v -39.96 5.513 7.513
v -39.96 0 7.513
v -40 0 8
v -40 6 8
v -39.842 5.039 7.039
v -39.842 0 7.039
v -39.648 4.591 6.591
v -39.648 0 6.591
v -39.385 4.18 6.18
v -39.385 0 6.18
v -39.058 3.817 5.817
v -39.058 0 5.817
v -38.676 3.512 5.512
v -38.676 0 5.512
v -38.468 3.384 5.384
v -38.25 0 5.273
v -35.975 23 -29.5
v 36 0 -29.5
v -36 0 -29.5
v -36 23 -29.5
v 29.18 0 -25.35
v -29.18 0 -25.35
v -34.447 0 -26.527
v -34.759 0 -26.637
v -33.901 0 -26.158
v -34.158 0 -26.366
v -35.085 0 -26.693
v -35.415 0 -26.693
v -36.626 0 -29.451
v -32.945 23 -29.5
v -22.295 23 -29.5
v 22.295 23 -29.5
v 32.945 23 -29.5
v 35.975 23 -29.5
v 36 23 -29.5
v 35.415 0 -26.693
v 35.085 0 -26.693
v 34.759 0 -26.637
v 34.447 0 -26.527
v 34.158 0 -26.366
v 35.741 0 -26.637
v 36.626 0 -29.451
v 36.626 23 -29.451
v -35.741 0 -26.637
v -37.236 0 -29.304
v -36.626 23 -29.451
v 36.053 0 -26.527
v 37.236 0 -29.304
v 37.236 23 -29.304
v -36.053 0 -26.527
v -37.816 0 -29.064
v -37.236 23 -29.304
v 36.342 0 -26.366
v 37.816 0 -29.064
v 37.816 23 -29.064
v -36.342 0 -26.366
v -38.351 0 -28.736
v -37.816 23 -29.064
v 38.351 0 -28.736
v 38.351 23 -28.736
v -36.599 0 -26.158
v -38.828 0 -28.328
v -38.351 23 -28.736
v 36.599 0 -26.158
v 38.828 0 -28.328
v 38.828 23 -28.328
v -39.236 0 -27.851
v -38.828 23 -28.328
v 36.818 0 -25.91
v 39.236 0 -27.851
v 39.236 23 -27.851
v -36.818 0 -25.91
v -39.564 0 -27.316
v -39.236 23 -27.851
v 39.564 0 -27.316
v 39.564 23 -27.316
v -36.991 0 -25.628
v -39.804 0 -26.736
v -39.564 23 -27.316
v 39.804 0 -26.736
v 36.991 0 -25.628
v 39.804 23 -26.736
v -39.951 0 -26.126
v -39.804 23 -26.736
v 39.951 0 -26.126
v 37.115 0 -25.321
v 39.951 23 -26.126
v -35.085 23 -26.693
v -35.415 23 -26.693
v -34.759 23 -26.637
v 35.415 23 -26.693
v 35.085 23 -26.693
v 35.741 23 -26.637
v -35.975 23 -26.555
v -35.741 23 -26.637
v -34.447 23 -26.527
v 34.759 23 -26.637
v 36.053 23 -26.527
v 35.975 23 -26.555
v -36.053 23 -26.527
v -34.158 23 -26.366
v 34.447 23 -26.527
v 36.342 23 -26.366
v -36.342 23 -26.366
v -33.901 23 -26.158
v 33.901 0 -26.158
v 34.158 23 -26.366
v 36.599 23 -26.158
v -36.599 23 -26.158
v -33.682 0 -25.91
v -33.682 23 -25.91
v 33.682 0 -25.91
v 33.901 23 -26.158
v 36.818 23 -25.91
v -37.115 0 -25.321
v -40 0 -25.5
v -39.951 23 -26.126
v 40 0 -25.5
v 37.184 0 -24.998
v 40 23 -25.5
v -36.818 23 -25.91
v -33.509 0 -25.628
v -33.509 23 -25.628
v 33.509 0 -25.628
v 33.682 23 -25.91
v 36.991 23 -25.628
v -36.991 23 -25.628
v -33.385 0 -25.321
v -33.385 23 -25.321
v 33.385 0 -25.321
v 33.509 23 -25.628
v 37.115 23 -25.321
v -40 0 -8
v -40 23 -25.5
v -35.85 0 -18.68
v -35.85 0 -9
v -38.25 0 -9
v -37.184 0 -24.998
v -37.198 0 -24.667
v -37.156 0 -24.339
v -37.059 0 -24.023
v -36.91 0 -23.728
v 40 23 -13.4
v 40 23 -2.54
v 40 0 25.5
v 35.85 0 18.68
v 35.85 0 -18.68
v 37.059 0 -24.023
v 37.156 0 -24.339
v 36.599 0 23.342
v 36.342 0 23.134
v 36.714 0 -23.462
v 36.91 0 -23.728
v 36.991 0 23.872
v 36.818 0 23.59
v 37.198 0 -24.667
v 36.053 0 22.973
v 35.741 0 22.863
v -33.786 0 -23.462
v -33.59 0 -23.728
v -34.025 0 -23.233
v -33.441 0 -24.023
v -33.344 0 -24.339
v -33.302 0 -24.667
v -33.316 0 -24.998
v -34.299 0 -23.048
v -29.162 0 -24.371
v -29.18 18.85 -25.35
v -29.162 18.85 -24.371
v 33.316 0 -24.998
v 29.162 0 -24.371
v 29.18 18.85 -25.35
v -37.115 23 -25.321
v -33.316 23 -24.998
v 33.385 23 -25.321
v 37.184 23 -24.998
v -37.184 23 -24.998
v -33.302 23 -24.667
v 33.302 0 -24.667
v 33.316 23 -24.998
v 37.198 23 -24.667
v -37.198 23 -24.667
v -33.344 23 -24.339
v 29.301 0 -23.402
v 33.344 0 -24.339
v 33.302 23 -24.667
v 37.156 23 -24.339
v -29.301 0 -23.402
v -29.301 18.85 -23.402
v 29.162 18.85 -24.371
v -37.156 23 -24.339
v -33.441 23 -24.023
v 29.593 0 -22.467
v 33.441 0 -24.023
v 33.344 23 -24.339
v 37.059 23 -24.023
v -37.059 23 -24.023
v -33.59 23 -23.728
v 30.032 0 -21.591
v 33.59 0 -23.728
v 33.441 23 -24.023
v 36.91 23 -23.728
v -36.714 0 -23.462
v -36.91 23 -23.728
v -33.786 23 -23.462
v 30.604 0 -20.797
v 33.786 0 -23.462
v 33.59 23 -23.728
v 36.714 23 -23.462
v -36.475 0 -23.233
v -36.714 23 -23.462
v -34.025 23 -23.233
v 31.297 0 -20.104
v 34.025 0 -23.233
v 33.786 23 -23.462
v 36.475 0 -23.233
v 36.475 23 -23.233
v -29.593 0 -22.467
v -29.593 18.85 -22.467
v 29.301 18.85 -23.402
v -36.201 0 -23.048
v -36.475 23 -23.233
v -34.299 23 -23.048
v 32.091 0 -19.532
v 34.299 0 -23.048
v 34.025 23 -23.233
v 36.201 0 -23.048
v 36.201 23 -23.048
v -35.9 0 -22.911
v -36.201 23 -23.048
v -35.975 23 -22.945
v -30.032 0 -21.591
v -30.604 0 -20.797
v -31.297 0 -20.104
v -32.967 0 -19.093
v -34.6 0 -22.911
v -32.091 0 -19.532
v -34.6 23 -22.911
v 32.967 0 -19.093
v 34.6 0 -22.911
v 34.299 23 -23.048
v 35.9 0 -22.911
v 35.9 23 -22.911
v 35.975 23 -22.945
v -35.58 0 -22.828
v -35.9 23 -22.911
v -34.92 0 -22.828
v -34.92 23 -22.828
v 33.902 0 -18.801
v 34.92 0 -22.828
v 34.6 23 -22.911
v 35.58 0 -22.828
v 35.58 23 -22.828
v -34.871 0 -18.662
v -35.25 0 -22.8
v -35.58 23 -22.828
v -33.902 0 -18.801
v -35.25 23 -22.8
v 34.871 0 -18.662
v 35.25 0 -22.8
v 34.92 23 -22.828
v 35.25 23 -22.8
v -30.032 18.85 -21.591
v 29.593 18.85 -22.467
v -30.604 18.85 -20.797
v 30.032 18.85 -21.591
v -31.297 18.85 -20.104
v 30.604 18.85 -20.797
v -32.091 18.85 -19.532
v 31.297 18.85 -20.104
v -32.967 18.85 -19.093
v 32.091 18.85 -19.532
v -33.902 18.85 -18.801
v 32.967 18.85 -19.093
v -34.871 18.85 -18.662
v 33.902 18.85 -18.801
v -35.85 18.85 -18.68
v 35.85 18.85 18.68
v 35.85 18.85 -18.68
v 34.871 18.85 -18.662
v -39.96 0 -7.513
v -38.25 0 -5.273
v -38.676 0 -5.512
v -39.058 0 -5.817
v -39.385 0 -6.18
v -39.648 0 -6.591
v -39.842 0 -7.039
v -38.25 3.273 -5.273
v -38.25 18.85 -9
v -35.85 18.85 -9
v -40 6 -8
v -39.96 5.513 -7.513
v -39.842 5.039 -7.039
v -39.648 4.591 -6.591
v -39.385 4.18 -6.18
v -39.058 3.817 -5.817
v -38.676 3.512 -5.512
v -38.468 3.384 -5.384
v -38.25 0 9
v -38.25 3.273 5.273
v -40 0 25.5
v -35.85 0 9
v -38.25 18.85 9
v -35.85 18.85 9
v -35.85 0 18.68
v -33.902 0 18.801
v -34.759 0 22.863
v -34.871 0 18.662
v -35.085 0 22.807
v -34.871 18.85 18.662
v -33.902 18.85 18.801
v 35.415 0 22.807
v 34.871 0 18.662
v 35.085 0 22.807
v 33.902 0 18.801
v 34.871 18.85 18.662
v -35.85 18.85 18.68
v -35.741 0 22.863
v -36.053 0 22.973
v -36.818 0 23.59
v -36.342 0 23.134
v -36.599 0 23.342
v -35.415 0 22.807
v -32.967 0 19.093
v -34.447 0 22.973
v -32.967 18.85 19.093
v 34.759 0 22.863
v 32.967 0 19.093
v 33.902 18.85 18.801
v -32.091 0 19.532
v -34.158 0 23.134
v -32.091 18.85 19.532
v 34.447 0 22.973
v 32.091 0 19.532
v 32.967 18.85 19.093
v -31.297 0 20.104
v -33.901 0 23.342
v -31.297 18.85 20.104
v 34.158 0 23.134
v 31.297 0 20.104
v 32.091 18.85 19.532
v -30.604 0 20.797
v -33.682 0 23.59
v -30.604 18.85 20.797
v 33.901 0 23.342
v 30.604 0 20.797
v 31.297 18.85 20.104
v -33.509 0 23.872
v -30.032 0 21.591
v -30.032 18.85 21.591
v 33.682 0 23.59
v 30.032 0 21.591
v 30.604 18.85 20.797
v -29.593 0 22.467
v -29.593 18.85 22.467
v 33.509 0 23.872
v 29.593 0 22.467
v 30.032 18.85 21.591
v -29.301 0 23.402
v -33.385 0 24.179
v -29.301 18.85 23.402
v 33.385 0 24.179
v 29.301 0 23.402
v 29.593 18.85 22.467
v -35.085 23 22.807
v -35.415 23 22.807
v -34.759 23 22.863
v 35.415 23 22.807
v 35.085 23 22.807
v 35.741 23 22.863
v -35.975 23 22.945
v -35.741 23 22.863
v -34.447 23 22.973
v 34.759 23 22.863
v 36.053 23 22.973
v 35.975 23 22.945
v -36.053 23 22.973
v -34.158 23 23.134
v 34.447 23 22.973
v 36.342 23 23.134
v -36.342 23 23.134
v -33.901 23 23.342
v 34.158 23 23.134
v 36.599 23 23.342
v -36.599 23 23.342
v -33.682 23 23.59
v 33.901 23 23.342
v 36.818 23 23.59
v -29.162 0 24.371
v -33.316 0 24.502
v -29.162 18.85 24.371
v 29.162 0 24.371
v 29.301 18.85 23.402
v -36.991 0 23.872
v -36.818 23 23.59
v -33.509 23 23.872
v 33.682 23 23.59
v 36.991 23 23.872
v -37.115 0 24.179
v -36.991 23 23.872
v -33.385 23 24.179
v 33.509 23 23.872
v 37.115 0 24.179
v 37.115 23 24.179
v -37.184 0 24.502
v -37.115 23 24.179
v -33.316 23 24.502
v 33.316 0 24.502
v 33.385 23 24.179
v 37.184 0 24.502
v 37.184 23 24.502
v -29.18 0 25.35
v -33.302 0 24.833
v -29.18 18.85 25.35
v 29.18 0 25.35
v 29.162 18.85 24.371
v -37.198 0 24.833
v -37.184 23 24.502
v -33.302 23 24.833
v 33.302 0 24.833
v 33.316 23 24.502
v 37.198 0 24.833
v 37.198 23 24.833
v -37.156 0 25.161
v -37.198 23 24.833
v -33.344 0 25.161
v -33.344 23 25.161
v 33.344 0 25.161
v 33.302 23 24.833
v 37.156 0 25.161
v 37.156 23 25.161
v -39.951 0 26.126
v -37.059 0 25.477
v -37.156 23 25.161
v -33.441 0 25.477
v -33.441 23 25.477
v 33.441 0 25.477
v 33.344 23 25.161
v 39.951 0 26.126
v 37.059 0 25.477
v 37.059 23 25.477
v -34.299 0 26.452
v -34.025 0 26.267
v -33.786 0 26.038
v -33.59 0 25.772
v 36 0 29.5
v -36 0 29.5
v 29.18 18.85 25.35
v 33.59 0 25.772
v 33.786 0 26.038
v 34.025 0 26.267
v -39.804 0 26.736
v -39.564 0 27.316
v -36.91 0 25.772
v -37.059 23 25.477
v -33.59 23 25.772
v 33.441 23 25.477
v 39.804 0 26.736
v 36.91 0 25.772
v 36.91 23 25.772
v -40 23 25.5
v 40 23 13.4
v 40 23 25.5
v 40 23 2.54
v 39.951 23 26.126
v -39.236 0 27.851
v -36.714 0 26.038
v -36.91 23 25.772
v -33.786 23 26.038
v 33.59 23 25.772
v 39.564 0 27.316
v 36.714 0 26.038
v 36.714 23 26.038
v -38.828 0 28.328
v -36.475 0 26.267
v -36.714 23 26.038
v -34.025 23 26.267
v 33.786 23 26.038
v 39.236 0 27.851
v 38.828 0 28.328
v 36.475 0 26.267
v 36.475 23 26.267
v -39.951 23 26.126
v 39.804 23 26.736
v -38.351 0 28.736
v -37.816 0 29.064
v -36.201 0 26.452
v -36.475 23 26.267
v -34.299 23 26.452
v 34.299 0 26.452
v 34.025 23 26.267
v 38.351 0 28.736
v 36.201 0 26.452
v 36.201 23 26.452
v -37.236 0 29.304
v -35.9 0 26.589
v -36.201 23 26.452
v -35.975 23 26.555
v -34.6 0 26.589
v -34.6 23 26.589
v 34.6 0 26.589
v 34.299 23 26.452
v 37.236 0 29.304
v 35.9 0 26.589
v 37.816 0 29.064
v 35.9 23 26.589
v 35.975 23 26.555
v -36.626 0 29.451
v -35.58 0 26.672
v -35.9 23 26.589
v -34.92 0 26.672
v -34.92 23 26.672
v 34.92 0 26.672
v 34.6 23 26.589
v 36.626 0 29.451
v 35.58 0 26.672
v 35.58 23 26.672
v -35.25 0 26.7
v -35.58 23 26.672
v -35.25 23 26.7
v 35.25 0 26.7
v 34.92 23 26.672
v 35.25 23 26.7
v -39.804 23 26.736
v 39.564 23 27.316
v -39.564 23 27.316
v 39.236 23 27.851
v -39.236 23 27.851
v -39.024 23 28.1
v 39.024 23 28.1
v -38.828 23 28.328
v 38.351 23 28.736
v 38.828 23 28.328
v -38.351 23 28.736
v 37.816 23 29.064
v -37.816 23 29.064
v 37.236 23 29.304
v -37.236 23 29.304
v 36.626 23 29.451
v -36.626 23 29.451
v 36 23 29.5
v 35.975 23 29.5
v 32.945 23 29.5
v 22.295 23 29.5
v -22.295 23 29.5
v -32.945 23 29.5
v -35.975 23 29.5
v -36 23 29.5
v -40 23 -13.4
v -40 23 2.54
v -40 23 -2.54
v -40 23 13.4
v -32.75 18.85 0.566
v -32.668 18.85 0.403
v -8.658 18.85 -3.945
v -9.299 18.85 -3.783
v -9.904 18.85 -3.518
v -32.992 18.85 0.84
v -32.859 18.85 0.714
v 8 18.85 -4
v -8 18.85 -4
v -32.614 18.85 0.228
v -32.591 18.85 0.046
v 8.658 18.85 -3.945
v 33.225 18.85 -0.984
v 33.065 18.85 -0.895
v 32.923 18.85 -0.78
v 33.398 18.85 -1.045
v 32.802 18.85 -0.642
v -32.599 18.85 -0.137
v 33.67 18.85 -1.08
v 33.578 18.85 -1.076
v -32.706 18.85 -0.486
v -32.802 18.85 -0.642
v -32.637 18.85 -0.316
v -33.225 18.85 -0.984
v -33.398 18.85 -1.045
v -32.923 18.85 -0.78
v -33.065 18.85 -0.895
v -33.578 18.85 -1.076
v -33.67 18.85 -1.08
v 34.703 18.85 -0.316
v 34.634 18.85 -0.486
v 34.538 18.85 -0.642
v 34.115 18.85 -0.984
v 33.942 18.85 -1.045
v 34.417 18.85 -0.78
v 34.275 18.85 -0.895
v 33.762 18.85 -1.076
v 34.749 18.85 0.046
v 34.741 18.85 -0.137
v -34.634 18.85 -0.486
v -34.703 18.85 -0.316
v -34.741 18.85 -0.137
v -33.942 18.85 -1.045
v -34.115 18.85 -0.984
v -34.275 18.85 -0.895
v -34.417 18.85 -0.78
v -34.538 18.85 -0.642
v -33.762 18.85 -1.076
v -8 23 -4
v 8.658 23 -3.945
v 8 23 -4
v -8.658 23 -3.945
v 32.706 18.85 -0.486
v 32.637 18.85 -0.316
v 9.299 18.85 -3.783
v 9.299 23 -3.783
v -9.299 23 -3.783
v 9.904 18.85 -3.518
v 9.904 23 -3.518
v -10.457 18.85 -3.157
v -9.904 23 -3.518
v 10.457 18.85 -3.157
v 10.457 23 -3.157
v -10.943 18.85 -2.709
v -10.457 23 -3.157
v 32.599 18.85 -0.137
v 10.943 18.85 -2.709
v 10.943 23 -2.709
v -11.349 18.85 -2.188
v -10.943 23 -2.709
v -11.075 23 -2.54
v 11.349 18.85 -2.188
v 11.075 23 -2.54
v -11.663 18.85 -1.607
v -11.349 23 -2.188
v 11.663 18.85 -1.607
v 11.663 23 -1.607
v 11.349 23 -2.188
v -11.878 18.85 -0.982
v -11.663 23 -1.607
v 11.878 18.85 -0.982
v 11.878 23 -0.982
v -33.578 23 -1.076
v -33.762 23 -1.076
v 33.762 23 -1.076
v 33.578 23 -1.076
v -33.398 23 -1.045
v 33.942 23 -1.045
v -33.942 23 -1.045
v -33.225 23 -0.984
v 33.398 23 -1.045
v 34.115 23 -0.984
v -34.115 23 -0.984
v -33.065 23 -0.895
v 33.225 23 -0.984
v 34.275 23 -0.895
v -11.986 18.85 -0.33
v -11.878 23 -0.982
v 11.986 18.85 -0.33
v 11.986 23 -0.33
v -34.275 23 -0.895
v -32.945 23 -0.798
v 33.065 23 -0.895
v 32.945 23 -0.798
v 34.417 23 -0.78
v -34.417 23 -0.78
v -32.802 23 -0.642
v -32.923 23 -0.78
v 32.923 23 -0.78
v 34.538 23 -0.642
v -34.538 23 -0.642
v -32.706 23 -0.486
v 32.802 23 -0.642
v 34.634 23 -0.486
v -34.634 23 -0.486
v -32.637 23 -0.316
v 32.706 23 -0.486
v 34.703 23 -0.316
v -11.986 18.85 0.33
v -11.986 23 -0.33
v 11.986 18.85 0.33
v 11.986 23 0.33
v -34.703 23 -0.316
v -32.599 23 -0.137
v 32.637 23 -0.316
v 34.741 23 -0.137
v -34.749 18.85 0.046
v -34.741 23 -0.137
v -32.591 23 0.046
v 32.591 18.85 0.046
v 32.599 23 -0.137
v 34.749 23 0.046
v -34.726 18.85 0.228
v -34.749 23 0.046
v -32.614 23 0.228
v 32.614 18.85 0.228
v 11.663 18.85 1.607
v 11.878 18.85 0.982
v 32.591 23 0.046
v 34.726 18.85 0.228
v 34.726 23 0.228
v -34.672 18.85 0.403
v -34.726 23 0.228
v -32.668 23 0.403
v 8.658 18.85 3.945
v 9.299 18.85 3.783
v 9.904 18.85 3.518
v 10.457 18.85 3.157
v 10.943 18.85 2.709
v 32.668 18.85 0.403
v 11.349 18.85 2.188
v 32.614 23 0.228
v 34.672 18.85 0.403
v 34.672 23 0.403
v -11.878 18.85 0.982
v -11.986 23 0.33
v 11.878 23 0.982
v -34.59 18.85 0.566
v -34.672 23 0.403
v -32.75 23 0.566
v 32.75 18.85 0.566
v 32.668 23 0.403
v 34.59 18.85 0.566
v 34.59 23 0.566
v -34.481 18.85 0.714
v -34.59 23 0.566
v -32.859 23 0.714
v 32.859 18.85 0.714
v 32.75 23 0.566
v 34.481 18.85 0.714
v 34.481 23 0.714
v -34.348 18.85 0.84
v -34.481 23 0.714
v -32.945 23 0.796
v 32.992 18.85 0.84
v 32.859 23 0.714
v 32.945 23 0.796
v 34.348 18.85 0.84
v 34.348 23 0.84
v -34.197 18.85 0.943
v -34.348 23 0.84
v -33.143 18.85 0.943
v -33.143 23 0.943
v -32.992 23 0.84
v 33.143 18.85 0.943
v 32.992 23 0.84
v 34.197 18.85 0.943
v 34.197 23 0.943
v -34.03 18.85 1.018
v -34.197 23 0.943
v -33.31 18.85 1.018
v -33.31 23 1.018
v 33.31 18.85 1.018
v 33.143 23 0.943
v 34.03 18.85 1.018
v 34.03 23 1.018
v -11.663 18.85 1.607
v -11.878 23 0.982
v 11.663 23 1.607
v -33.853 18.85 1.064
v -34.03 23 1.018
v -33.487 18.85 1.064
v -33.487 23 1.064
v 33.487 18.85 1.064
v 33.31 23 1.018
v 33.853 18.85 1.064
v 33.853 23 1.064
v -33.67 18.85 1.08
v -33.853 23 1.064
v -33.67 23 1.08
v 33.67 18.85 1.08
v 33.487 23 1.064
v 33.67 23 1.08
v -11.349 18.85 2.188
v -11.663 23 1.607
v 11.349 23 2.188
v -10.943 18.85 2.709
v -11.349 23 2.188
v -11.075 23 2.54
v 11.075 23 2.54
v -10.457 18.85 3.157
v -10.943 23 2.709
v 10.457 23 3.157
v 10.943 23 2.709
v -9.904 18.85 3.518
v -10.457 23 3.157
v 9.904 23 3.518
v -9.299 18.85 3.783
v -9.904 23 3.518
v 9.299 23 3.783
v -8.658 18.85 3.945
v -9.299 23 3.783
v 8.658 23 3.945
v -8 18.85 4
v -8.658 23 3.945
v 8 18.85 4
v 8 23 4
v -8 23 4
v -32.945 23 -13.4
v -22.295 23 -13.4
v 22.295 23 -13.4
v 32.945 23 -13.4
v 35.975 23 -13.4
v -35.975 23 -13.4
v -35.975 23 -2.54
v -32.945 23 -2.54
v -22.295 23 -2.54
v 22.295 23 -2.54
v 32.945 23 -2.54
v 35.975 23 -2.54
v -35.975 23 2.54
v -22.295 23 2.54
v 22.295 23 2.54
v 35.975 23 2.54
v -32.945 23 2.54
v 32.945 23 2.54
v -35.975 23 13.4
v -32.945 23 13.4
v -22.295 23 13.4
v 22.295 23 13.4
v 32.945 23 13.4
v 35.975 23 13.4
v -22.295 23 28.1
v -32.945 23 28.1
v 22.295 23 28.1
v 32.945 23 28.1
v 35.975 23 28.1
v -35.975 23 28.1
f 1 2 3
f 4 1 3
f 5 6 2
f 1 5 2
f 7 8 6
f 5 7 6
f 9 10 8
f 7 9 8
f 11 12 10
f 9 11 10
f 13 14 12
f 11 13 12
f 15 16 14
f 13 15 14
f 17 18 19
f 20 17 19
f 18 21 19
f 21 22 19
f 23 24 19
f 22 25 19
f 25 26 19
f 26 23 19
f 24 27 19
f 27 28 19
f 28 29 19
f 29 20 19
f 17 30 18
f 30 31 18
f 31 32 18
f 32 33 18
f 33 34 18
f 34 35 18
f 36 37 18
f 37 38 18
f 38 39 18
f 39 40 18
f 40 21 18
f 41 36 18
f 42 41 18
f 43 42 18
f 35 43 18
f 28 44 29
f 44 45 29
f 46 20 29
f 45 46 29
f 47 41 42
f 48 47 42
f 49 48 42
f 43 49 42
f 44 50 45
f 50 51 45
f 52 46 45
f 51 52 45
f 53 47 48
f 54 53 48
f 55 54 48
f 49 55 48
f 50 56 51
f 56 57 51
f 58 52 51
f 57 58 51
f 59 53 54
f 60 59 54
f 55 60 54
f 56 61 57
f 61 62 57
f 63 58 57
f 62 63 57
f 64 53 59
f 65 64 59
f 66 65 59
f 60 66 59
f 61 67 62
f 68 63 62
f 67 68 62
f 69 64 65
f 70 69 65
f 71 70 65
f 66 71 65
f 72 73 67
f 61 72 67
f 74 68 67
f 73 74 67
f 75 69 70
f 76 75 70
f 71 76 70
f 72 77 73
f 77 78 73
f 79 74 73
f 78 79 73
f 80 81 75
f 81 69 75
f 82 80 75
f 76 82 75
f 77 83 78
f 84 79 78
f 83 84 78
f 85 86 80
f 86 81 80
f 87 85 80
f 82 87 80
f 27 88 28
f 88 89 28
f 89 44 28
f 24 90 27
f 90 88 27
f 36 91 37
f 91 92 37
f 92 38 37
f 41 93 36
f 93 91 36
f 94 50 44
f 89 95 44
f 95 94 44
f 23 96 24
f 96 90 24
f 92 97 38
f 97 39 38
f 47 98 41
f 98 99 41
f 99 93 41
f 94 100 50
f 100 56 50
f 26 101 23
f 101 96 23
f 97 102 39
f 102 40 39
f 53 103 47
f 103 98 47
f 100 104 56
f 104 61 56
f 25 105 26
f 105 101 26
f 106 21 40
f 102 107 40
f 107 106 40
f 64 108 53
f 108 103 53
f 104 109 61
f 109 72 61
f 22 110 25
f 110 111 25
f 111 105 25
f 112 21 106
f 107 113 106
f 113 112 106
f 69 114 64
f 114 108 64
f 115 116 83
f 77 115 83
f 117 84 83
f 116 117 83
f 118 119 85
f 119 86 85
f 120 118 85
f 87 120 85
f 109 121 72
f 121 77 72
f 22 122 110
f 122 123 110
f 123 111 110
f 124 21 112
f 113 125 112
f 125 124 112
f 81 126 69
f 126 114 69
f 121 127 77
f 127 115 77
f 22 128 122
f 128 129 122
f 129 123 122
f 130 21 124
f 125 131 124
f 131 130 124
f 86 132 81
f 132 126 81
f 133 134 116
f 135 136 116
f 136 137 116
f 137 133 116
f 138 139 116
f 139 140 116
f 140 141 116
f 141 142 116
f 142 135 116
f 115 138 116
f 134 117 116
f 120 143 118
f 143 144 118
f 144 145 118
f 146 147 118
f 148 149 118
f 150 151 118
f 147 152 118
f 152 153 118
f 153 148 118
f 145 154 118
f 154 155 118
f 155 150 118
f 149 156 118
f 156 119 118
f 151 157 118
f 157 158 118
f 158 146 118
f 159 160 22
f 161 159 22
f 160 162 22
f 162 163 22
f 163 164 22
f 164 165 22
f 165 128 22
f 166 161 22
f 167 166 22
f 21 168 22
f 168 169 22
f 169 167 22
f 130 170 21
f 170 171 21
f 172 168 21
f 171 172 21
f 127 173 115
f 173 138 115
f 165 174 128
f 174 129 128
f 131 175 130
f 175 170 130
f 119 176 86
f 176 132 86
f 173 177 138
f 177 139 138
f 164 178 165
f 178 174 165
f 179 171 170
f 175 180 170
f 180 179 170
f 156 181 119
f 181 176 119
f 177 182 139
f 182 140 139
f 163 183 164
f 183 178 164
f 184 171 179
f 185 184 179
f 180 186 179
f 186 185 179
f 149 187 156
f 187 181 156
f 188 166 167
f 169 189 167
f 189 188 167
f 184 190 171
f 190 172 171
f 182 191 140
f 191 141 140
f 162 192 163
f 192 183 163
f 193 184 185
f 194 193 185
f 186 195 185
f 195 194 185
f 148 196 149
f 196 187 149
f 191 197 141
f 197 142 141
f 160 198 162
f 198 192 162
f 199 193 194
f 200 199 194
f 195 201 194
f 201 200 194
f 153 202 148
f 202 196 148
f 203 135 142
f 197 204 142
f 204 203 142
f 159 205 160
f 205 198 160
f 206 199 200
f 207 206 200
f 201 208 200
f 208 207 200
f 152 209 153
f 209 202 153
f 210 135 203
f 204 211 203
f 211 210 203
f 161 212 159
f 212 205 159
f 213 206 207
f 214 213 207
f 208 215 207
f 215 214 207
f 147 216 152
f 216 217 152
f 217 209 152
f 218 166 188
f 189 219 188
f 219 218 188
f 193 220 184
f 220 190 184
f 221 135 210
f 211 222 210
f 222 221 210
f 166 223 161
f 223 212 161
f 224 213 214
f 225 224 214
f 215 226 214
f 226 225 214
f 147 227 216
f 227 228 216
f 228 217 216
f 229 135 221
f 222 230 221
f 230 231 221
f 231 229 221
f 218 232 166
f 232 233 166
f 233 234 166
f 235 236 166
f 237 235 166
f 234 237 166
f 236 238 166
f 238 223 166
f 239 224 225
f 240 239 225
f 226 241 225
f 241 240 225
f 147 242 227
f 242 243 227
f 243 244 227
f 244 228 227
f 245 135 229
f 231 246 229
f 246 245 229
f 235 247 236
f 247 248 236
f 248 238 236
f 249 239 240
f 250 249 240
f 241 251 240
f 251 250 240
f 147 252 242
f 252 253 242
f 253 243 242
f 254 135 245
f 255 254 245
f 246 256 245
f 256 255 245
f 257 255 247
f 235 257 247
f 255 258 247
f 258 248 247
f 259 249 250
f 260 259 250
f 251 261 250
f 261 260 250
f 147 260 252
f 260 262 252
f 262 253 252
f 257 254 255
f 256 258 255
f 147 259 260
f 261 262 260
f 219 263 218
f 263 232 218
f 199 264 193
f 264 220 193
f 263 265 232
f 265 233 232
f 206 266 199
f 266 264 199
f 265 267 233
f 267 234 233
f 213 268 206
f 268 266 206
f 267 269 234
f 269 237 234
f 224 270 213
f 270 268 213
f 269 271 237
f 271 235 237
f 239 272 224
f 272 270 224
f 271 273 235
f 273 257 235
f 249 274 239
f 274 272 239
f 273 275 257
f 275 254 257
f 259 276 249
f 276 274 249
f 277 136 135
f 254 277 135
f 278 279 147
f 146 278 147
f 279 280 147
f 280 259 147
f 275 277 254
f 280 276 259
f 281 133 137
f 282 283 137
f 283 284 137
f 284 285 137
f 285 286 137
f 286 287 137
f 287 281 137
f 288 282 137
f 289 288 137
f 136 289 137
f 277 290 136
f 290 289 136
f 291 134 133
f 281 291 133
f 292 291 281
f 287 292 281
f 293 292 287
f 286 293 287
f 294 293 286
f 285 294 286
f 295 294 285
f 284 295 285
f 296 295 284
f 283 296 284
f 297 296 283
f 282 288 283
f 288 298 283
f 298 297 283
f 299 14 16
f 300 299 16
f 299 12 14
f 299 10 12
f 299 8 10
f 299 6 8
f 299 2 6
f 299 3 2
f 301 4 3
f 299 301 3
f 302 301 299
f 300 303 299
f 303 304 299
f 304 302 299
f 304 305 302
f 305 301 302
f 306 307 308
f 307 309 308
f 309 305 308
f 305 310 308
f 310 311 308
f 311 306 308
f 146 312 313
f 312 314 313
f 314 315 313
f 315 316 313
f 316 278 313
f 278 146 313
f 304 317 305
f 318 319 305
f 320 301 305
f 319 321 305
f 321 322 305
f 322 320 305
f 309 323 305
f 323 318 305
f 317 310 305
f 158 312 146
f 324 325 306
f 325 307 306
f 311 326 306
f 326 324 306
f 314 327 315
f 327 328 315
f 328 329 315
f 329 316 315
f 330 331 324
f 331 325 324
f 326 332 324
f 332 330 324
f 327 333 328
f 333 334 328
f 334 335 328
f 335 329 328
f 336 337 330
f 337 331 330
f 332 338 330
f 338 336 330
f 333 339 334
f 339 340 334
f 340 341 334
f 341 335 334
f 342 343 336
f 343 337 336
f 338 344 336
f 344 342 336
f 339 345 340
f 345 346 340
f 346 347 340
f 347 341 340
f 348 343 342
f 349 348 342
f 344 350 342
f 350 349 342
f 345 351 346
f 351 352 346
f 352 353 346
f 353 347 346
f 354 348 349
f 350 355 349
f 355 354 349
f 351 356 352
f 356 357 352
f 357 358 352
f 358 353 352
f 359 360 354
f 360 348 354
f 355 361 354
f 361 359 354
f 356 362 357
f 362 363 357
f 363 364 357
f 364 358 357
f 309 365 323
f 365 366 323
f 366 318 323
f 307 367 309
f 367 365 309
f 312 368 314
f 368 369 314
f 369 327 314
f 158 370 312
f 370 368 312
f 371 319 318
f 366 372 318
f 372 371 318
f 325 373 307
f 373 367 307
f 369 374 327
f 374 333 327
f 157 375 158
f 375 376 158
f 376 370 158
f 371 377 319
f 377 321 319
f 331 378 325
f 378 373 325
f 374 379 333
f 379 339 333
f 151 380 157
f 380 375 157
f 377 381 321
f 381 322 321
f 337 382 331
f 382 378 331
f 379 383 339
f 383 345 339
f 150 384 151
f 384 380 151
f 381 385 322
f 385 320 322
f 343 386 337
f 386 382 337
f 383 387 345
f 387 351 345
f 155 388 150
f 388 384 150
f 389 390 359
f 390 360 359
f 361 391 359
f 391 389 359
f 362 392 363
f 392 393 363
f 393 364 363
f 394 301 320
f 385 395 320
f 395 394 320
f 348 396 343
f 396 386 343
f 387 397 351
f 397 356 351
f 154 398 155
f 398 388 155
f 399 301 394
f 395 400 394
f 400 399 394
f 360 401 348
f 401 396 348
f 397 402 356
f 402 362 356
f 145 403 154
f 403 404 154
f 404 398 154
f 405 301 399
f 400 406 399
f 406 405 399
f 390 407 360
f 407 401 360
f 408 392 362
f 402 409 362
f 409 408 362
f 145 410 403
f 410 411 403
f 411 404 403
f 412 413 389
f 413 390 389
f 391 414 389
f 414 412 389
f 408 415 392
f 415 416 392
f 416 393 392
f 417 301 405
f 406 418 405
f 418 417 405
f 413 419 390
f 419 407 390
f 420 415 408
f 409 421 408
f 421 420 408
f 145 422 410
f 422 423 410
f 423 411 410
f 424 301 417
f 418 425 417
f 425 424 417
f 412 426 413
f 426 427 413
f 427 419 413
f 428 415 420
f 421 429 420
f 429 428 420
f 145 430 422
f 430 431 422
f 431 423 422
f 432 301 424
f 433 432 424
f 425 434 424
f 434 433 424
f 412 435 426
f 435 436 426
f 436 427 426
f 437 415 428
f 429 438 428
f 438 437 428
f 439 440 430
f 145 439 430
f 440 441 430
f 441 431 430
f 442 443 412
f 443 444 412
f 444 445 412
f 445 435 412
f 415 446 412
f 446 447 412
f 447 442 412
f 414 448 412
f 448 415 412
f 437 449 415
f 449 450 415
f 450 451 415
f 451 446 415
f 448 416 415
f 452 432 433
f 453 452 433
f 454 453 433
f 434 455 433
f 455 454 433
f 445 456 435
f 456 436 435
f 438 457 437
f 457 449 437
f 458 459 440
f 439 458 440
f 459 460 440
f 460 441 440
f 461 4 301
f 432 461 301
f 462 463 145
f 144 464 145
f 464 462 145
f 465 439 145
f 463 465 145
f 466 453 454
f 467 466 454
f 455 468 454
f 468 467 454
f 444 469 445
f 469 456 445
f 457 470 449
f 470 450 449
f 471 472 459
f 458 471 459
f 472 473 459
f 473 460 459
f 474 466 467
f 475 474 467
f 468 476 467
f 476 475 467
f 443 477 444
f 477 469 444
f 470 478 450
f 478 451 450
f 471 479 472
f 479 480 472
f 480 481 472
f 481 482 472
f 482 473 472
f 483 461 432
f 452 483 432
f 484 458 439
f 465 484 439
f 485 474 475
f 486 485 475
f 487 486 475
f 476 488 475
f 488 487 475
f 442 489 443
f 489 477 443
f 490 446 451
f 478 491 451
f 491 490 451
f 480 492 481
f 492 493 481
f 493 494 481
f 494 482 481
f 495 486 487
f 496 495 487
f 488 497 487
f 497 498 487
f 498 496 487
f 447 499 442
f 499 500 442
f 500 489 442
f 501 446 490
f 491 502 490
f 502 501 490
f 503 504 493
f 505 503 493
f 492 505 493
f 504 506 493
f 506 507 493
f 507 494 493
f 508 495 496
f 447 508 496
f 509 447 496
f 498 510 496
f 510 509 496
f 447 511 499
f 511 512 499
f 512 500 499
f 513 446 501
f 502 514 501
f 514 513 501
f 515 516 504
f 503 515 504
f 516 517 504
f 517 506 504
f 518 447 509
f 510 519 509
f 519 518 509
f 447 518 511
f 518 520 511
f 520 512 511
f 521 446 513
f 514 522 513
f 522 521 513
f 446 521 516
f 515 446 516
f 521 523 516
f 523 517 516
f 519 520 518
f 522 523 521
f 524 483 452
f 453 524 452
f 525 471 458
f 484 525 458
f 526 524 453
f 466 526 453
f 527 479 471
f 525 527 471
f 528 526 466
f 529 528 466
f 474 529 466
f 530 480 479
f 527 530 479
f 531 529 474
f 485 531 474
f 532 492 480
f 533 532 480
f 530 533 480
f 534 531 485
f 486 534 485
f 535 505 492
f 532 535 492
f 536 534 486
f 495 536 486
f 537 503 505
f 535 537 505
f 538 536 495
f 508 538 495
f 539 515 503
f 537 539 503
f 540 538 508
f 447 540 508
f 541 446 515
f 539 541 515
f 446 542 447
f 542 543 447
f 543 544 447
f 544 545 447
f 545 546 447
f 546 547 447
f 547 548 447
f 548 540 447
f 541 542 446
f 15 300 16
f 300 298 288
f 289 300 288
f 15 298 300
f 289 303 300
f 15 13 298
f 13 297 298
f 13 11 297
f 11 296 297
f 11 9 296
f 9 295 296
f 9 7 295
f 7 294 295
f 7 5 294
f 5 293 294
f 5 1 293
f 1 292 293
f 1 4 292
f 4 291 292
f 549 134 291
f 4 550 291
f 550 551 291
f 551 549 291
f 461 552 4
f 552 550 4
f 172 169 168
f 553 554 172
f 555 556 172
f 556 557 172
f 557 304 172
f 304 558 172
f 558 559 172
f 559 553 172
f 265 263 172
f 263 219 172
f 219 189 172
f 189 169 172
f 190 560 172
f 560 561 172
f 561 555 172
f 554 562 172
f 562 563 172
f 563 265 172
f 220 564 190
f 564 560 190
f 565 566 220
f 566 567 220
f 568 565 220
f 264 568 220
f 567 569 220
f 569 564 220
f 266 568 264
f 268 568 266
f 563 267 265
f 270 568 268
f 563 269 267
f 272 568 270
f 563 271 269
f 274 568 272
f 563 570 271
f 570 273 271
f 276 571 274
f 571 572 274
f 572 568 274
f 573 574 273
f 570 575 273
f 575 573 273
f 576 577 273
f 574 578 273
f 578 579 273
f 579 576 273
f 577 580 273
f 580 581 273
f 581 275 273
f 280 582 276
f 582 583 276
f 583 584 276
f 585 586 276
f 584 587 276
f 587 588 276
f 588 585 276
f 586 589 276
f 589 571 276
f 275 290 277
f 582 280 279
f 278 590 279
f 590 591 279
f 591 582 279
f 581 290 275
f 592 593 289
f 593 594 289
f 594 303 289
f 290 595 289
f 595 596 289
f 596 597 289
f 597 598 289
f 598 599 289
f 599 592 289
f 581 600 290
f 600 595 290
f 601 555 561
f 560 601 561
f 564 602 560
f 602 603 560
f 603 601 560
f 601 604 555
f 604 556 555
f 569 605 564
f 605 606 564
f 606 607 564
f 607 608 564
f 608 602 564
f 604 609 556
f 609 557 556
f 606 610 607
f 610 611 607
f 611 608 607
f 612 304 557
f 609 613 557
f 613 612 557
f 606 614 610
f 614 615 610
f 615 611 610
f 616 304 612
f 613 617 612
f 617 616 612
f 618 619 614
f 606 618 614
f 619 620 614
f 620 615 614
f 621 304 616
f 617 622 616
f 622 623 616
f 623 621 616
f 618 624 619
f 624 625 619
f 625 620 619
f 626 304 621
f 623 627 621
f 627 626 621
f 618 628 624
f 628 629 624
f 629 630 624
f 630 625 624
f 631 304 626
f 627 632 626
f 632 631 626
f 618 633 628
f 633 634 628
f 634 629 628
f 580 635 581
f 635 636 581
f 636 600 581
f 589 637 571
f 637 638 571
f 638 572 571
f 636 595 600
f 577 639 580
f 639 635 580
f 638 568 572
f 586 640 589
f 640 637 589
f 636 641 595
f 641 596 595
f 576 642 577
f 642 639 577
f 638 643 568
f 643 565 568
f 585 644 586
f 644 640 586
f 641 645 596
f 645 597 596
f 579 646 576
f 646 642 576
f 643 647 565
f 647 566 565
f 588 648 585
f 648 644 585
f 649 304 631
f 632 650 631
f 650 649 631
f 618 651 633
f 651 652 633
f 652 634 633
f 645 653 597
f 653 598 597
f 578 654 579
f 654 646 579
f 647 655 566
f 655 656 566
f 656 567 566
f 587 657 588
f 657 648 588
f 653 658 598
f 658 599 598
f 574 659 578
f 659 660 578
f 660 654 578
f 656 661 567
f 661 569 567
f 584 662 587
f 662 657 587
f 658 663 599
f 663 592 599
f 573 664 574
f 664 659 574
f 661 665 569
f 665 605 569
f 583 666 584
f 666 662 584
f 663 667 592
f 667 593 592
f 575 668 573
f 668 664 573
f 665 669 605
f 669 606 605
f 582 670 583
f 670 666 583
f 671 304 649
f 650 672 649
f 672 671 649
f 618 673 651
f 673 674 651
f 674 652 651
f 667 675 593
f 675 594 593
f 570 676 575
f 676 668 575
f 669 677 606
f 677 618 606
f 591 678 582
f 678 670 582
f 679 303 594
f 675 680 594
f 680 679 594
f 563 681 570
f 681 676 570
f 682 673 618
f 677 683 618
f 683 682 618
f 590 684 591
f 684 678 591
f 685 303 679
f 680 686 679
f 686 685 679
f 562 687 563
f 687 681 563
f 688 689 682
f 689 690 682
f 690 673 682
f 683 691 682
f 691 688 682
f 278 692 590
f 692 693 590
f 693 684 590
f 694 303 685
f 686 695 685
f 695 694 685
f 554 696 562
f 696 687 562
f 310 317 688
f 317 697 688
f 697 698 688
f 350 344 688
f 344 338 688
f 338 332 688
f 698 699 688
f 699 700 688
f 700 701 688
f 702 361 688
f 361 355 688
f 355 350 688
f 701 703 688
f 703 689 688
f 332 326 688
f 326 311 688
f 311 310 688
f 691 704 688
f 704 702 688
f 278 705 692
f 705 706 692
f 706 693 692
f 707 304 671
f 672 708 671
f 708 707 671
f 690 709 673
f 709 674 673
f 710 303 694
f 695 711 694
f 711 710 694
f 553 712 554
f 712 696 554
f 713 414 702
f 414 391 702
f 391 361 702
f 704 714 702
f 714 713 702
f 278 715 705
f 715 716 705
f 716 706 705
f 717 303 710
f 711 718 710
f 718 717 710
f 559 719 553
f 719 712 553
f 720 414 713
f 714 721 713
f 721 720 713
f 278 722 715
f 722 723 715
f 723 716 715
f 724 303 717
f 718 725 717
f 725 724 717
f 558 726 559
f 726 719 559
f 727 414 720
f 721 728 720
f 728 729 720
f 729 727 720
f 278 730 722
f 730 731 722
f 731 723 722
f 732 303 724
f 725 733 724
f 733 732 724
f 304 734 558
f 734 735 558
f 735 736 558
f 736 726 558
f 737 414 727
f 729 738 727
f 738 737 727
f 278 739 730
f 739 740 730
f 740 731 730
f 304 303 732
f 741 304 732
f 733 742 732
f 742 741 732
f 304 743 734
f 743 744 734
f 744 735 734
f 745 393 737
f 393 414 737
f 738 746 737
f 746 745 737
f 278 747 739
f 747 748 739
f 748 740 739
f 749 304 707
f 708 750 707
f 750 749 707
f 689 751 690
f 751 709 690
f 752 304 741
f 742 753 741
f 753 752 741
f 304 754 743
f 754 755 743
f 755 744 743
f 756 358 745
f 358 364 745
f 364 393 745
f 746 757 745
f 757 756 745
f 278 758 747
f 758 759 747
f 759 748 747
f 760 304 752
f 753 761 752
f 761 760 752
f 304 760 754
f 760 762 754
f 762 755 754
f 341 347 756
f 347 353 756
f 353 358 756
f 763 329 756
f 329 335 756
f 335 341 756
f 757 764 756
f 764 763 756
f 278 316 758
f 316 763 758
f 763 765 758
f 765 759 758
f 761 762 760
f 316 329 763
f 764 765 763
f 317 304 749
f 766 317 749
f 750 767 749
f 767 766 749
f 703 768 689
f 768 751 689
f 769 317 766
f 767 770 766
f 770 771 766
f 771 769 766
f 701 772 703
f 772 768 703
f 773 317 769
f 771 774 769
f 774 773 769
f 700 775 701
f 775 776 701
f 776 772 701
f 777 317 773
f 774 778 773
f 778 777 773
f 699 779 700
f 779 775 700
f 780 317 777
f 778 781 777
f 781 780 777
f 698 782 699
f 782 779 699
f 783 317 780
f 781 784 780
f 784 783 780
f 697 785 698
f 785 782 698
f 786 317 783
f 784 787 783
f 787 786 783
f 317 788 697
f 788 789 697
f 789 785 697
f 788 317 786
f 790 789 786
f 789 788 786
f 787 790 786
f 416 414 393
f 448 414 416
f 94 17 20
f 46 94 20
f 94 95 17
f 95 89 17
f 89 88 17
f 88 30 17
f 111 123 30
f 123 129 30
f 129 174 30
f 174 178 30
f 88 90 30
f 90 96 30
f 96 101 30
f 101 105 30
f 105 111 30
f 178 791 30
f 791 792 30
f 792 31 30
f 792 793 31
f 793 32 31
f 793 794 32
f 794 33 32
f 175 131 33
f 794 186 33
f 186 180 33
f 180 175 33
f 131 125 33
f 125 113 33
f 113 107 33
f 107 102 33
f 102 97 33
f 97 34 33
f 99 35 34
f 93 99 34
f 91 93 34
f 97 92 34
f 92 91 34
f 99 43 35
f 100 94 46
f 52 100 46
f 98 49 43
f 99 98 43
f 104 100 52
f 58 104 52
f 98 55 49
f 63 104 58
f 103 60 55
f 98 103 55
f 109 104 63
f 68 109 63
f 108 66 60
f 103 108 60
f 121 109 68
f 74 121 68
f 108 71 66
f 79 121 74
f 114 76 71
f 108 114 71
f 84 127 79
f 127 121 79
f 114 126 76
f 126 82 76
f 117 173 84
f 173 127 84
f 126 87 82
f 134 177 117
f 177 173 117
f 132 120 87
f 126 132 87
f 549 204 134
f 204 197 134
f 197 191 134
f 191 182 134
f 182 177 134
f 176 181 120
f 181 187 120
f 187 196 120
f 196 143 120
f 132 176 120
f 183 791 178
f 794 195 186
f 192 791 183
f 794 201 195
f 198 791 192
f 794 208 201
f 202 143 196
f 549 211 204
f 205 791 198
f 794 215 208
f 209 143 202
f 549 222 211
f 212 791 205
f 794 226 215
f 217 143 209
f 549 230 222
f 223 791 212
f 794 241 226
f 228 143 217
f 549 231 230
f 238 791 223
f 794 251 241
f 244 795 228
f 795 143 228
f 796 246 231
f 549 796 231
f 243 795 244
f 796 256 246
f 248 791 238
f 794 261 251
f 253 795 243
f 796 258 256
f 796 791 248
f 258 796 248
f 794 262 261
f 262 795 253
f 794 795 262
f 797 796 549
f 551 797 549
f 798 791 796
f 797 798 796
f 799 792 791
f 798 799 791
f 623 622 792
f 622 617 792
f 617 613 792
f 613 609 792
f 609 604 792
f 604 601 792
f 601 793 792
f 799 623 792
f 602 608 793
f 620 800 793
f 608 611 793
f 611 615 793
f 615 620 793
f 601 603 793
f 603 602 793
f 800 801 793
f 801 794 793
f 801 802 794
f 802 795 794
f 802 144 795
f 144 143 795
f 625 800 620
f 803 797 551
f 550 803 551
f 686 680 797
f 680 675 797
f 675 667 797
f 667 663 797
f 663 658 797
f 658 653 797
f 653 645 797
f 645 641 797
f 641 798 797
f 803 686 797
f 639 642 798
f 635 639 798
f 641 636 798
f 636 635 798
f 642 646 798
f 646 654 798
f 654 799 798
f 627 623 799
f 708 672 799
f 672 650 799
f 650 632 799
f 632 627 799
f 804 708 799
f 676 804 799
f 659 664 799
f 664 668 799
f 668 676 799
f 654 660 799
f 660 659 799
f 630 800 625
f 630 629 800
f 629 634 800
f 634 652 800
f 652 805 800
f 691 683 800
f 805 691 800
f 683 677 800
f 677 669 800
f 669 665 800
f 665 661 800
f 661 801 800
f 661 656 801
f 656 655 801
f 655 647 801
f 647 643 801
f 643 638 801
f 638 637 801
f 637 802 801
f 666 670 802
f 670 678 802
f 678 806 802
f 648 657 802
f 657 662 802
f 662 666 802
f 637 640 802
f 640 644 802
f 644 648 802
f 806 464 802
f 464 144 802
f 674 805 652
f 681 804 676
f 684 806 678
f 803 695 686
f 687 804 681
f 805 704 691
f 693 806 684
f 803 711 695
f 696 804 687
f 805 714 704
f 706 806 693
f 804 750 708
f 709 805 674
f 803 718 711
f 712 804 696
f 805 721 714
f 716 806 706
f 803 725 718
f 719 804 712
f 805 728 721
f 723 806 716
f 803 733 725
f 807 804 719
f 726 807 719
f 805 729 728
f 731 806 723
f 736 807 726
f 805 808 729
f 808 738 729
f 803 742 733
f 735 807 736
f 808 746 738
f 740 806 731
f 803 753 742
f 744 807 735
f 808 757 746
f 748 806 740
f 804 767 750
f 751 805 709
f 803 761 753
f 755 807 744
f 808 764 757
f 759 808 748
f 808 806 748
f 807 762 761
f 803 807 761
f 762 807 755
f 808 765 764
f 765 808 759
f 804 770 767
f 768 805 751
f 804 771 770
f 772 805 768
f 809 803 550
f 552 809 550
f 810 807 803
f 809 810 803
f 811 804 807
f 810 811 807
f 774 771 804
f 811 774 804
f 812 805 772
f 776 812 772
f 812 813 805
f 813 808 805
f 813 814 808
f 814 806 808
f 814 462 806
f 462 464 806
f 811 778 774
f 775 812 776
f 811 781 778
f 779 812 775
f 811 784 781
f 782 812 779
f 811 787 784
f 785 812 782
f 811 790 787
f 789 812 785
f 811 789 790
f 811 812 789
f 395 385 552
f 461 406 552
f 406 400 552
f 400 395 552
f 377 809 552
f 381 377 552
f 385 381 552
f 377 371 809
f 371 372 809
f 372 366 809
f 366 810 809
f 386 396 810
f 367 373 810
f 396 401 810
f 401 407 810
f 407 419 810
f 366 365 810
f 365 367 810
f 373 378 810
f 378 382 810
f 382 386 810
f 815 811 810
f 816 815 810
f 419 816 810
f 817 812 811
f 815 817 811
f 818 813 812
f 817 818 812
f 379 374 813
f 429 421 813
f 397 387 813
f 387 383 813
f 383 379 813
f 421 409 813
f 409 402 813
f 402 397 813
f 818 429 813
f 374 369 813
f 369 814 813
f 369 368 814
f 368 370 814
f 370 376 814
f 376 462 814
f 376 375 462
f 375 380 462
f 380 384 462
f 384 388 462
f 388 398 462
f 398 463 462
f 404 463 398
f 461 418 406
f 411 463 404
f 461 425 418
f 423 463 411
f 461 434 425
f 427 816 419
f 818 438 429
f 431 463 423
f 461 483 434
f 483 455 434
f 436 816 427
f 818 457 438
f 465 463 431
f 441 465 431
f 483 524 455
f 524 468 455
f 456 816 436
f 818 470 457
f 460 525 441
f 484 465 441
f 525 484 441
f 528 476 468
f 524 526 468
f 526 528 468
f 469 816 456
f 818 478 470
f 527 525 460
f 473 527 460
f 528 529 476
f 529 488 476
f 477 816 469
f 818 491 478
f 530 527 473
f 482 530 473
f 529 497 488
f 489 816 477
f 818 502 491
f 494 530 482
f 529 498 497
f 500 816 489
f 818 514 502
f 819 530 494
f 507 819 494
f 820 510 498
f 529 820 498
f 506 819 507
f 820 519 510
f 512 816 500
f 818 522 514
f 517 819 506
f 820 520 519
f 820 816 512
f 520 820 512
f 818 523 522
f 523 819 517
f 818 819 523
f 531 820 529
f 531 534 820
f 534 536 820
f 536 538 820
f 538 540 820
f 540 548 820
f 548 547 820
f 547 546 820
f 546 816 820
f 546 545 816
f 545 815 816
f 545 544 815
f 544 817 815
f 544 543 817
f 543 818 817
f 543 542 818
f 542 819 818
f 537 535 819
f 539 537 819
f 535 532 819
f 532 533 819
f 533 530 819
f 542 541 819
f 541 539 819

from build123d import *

# Parameters (mm, degrees)
SKETCH1_W           = 80
SKETCH1_H           = 59
BOSS_EXTRUDE1_DEPTH = 23
SKETCH2_R           = 1.95
CUT_EXTRUDE1_DEPTH  = 23
SHELL2_T            = -4.15
CUT_EXTRUDE2_DEPTH  = 23
SKETCH4_W           = 10
SKETCH4_H           = 3
CUT_EXTRUDE3_DEPTH  = 23
FILLET1_R           = 4
FILLET2_R           = 3
SKETCH5_R           = 1.08
CUT_EXTRUDE4_DEPTH  = 10
SKETCH6_W           = 2.4
SKETCH6_H           = 18
CUT_EXTRUDE5_DEPTH  = 18.85


with BuildPart() as part:
    # Sketch1 → Boss-Extrude1 (new body)
    with BuildSketch(Plane(origin=(0, 0, 0), x_dir=(1, 0, 0), z_dir=(0, 1, 0))):
        Rectangle(SKETCH1_W, SKETCH1_H)
    extrude(amount=BOSS_EXTRUDE1_DEPTH)

    # Sketch2 → Cut-Extrude1 (cut)
    with BuildSketch(Plane(origin=(0, 23, 0), x_dir=(1, 0, 0), z_dir=(0, 1, 0))):
        with Locations(Location((35.25, 24.75, 0), (0, 0, 270))):
            Circle(SKETCH2_R)
        with Locations(Location((35.25, -24.75, 0), (0, 0, 270))):
            Circle(SKETCH2_R)
        with Locations(Location((-35.25, 24.75, 0), (0, 0, 270))):
            Circle(SKETCH2_R)
        with Locations(Location((-35.25, -24.75, 0), (0, 0, 270))):
            Circle(SKETCH2_R)
    extrude(amount=-CUT_EXTRUDE1_DEPTH, mode=Mode.SUBTRACT)

    # Shell2
    shell2_openings = [part.faces().sort_by_distance(p)[0] for p in [
        (0, 0, 0),
    ]]
    offset(amount=SHELL2_T, openings=shell2_openings)

    # Sketch3 → Cut-Extrude2 (cut)
    with BuildSketch(Plane(origin=(0, 23, 0), x_dir=(1, 0, 0), z_dir=(0, 1, 0))):
        with BuildLine():
            Line((8, -4), (-8, -4))
            ThreePointArc((-8, -4), (-12, 0), (-8, 4))
            Line((-8, 4), (8, 4))
            ThreePointArc((8, 4), (12, 0), (8, -4))
        make_face()
    extrude(amount=-CUT_EXTRUDE2_DEPTH, mode=Mode.SUBTRACT)

    # Sketch4 → Cut-Extrude3 (cut)
    with BuildSketch(Plane.ZY.offset(40)):
        with Locations((0, 1.5)):
            Rectangle(SKETCH4_W, SKETCH4_H)
    extrude(amount=-CUT_EXTRUDE3_DEPTH, mode=Mode.SUBTRACT)

    # Fillet1
    fillet1_edges = [part.edges().sort_by_distance(p)[0] for p in [
        (40, 11.5, 29.5),
        (-40, 11.5, 29.5),
        (-40, 11.5, -29.5),
        (40, 11.5, -29.5),
    ]]
    fillet(fillet1_edges, radius=FILLET1_R)

    # Fillet2
    fillet2_edges = [part.edges().sort_by_distance(p)[0] for p in [
        (-40, 1.5, -5),
        (-40, 1.5, 5),
        (-40, 3, 0),
    ]]
    fillet(fillet2_edges, radius=FILLET2_R)

    # Sketch5 → Cut-Extrude4 (cut)
    with BuildSketch(Plane(origin=(0, 23, 0), x_dir=(1, 0, 0), z_dir=(0, 1, 0))):
        with Locations(Location((33.67, 0, 0), (0, 0, 270))):
            Circle(SKETCH5_R)
        with Locations(Location((-33.67, 0, 0), (0, 0, 270))):
            Circle(SKETCH5_R)
    extrude(amount=-CUT_EXTRUDE4_DEPTH, mode=Mode.SUBTRACT)

    # Sketch6 → Cut-Extrude5 (cut)
    with BuildSketch(Plane(origin=(0, 0, 0), x_dir=(-1, 0, 0), z_dir=(0, -1, 0))):
        with Locations((37.05, 0)):
            Rectangle(SKETCH6_W, SKETCH6_H)
    extrude(amount=-CUT_EXTRUDE5_DEPTH, mode=Mode.SUBTRACT)


solid = part.part
